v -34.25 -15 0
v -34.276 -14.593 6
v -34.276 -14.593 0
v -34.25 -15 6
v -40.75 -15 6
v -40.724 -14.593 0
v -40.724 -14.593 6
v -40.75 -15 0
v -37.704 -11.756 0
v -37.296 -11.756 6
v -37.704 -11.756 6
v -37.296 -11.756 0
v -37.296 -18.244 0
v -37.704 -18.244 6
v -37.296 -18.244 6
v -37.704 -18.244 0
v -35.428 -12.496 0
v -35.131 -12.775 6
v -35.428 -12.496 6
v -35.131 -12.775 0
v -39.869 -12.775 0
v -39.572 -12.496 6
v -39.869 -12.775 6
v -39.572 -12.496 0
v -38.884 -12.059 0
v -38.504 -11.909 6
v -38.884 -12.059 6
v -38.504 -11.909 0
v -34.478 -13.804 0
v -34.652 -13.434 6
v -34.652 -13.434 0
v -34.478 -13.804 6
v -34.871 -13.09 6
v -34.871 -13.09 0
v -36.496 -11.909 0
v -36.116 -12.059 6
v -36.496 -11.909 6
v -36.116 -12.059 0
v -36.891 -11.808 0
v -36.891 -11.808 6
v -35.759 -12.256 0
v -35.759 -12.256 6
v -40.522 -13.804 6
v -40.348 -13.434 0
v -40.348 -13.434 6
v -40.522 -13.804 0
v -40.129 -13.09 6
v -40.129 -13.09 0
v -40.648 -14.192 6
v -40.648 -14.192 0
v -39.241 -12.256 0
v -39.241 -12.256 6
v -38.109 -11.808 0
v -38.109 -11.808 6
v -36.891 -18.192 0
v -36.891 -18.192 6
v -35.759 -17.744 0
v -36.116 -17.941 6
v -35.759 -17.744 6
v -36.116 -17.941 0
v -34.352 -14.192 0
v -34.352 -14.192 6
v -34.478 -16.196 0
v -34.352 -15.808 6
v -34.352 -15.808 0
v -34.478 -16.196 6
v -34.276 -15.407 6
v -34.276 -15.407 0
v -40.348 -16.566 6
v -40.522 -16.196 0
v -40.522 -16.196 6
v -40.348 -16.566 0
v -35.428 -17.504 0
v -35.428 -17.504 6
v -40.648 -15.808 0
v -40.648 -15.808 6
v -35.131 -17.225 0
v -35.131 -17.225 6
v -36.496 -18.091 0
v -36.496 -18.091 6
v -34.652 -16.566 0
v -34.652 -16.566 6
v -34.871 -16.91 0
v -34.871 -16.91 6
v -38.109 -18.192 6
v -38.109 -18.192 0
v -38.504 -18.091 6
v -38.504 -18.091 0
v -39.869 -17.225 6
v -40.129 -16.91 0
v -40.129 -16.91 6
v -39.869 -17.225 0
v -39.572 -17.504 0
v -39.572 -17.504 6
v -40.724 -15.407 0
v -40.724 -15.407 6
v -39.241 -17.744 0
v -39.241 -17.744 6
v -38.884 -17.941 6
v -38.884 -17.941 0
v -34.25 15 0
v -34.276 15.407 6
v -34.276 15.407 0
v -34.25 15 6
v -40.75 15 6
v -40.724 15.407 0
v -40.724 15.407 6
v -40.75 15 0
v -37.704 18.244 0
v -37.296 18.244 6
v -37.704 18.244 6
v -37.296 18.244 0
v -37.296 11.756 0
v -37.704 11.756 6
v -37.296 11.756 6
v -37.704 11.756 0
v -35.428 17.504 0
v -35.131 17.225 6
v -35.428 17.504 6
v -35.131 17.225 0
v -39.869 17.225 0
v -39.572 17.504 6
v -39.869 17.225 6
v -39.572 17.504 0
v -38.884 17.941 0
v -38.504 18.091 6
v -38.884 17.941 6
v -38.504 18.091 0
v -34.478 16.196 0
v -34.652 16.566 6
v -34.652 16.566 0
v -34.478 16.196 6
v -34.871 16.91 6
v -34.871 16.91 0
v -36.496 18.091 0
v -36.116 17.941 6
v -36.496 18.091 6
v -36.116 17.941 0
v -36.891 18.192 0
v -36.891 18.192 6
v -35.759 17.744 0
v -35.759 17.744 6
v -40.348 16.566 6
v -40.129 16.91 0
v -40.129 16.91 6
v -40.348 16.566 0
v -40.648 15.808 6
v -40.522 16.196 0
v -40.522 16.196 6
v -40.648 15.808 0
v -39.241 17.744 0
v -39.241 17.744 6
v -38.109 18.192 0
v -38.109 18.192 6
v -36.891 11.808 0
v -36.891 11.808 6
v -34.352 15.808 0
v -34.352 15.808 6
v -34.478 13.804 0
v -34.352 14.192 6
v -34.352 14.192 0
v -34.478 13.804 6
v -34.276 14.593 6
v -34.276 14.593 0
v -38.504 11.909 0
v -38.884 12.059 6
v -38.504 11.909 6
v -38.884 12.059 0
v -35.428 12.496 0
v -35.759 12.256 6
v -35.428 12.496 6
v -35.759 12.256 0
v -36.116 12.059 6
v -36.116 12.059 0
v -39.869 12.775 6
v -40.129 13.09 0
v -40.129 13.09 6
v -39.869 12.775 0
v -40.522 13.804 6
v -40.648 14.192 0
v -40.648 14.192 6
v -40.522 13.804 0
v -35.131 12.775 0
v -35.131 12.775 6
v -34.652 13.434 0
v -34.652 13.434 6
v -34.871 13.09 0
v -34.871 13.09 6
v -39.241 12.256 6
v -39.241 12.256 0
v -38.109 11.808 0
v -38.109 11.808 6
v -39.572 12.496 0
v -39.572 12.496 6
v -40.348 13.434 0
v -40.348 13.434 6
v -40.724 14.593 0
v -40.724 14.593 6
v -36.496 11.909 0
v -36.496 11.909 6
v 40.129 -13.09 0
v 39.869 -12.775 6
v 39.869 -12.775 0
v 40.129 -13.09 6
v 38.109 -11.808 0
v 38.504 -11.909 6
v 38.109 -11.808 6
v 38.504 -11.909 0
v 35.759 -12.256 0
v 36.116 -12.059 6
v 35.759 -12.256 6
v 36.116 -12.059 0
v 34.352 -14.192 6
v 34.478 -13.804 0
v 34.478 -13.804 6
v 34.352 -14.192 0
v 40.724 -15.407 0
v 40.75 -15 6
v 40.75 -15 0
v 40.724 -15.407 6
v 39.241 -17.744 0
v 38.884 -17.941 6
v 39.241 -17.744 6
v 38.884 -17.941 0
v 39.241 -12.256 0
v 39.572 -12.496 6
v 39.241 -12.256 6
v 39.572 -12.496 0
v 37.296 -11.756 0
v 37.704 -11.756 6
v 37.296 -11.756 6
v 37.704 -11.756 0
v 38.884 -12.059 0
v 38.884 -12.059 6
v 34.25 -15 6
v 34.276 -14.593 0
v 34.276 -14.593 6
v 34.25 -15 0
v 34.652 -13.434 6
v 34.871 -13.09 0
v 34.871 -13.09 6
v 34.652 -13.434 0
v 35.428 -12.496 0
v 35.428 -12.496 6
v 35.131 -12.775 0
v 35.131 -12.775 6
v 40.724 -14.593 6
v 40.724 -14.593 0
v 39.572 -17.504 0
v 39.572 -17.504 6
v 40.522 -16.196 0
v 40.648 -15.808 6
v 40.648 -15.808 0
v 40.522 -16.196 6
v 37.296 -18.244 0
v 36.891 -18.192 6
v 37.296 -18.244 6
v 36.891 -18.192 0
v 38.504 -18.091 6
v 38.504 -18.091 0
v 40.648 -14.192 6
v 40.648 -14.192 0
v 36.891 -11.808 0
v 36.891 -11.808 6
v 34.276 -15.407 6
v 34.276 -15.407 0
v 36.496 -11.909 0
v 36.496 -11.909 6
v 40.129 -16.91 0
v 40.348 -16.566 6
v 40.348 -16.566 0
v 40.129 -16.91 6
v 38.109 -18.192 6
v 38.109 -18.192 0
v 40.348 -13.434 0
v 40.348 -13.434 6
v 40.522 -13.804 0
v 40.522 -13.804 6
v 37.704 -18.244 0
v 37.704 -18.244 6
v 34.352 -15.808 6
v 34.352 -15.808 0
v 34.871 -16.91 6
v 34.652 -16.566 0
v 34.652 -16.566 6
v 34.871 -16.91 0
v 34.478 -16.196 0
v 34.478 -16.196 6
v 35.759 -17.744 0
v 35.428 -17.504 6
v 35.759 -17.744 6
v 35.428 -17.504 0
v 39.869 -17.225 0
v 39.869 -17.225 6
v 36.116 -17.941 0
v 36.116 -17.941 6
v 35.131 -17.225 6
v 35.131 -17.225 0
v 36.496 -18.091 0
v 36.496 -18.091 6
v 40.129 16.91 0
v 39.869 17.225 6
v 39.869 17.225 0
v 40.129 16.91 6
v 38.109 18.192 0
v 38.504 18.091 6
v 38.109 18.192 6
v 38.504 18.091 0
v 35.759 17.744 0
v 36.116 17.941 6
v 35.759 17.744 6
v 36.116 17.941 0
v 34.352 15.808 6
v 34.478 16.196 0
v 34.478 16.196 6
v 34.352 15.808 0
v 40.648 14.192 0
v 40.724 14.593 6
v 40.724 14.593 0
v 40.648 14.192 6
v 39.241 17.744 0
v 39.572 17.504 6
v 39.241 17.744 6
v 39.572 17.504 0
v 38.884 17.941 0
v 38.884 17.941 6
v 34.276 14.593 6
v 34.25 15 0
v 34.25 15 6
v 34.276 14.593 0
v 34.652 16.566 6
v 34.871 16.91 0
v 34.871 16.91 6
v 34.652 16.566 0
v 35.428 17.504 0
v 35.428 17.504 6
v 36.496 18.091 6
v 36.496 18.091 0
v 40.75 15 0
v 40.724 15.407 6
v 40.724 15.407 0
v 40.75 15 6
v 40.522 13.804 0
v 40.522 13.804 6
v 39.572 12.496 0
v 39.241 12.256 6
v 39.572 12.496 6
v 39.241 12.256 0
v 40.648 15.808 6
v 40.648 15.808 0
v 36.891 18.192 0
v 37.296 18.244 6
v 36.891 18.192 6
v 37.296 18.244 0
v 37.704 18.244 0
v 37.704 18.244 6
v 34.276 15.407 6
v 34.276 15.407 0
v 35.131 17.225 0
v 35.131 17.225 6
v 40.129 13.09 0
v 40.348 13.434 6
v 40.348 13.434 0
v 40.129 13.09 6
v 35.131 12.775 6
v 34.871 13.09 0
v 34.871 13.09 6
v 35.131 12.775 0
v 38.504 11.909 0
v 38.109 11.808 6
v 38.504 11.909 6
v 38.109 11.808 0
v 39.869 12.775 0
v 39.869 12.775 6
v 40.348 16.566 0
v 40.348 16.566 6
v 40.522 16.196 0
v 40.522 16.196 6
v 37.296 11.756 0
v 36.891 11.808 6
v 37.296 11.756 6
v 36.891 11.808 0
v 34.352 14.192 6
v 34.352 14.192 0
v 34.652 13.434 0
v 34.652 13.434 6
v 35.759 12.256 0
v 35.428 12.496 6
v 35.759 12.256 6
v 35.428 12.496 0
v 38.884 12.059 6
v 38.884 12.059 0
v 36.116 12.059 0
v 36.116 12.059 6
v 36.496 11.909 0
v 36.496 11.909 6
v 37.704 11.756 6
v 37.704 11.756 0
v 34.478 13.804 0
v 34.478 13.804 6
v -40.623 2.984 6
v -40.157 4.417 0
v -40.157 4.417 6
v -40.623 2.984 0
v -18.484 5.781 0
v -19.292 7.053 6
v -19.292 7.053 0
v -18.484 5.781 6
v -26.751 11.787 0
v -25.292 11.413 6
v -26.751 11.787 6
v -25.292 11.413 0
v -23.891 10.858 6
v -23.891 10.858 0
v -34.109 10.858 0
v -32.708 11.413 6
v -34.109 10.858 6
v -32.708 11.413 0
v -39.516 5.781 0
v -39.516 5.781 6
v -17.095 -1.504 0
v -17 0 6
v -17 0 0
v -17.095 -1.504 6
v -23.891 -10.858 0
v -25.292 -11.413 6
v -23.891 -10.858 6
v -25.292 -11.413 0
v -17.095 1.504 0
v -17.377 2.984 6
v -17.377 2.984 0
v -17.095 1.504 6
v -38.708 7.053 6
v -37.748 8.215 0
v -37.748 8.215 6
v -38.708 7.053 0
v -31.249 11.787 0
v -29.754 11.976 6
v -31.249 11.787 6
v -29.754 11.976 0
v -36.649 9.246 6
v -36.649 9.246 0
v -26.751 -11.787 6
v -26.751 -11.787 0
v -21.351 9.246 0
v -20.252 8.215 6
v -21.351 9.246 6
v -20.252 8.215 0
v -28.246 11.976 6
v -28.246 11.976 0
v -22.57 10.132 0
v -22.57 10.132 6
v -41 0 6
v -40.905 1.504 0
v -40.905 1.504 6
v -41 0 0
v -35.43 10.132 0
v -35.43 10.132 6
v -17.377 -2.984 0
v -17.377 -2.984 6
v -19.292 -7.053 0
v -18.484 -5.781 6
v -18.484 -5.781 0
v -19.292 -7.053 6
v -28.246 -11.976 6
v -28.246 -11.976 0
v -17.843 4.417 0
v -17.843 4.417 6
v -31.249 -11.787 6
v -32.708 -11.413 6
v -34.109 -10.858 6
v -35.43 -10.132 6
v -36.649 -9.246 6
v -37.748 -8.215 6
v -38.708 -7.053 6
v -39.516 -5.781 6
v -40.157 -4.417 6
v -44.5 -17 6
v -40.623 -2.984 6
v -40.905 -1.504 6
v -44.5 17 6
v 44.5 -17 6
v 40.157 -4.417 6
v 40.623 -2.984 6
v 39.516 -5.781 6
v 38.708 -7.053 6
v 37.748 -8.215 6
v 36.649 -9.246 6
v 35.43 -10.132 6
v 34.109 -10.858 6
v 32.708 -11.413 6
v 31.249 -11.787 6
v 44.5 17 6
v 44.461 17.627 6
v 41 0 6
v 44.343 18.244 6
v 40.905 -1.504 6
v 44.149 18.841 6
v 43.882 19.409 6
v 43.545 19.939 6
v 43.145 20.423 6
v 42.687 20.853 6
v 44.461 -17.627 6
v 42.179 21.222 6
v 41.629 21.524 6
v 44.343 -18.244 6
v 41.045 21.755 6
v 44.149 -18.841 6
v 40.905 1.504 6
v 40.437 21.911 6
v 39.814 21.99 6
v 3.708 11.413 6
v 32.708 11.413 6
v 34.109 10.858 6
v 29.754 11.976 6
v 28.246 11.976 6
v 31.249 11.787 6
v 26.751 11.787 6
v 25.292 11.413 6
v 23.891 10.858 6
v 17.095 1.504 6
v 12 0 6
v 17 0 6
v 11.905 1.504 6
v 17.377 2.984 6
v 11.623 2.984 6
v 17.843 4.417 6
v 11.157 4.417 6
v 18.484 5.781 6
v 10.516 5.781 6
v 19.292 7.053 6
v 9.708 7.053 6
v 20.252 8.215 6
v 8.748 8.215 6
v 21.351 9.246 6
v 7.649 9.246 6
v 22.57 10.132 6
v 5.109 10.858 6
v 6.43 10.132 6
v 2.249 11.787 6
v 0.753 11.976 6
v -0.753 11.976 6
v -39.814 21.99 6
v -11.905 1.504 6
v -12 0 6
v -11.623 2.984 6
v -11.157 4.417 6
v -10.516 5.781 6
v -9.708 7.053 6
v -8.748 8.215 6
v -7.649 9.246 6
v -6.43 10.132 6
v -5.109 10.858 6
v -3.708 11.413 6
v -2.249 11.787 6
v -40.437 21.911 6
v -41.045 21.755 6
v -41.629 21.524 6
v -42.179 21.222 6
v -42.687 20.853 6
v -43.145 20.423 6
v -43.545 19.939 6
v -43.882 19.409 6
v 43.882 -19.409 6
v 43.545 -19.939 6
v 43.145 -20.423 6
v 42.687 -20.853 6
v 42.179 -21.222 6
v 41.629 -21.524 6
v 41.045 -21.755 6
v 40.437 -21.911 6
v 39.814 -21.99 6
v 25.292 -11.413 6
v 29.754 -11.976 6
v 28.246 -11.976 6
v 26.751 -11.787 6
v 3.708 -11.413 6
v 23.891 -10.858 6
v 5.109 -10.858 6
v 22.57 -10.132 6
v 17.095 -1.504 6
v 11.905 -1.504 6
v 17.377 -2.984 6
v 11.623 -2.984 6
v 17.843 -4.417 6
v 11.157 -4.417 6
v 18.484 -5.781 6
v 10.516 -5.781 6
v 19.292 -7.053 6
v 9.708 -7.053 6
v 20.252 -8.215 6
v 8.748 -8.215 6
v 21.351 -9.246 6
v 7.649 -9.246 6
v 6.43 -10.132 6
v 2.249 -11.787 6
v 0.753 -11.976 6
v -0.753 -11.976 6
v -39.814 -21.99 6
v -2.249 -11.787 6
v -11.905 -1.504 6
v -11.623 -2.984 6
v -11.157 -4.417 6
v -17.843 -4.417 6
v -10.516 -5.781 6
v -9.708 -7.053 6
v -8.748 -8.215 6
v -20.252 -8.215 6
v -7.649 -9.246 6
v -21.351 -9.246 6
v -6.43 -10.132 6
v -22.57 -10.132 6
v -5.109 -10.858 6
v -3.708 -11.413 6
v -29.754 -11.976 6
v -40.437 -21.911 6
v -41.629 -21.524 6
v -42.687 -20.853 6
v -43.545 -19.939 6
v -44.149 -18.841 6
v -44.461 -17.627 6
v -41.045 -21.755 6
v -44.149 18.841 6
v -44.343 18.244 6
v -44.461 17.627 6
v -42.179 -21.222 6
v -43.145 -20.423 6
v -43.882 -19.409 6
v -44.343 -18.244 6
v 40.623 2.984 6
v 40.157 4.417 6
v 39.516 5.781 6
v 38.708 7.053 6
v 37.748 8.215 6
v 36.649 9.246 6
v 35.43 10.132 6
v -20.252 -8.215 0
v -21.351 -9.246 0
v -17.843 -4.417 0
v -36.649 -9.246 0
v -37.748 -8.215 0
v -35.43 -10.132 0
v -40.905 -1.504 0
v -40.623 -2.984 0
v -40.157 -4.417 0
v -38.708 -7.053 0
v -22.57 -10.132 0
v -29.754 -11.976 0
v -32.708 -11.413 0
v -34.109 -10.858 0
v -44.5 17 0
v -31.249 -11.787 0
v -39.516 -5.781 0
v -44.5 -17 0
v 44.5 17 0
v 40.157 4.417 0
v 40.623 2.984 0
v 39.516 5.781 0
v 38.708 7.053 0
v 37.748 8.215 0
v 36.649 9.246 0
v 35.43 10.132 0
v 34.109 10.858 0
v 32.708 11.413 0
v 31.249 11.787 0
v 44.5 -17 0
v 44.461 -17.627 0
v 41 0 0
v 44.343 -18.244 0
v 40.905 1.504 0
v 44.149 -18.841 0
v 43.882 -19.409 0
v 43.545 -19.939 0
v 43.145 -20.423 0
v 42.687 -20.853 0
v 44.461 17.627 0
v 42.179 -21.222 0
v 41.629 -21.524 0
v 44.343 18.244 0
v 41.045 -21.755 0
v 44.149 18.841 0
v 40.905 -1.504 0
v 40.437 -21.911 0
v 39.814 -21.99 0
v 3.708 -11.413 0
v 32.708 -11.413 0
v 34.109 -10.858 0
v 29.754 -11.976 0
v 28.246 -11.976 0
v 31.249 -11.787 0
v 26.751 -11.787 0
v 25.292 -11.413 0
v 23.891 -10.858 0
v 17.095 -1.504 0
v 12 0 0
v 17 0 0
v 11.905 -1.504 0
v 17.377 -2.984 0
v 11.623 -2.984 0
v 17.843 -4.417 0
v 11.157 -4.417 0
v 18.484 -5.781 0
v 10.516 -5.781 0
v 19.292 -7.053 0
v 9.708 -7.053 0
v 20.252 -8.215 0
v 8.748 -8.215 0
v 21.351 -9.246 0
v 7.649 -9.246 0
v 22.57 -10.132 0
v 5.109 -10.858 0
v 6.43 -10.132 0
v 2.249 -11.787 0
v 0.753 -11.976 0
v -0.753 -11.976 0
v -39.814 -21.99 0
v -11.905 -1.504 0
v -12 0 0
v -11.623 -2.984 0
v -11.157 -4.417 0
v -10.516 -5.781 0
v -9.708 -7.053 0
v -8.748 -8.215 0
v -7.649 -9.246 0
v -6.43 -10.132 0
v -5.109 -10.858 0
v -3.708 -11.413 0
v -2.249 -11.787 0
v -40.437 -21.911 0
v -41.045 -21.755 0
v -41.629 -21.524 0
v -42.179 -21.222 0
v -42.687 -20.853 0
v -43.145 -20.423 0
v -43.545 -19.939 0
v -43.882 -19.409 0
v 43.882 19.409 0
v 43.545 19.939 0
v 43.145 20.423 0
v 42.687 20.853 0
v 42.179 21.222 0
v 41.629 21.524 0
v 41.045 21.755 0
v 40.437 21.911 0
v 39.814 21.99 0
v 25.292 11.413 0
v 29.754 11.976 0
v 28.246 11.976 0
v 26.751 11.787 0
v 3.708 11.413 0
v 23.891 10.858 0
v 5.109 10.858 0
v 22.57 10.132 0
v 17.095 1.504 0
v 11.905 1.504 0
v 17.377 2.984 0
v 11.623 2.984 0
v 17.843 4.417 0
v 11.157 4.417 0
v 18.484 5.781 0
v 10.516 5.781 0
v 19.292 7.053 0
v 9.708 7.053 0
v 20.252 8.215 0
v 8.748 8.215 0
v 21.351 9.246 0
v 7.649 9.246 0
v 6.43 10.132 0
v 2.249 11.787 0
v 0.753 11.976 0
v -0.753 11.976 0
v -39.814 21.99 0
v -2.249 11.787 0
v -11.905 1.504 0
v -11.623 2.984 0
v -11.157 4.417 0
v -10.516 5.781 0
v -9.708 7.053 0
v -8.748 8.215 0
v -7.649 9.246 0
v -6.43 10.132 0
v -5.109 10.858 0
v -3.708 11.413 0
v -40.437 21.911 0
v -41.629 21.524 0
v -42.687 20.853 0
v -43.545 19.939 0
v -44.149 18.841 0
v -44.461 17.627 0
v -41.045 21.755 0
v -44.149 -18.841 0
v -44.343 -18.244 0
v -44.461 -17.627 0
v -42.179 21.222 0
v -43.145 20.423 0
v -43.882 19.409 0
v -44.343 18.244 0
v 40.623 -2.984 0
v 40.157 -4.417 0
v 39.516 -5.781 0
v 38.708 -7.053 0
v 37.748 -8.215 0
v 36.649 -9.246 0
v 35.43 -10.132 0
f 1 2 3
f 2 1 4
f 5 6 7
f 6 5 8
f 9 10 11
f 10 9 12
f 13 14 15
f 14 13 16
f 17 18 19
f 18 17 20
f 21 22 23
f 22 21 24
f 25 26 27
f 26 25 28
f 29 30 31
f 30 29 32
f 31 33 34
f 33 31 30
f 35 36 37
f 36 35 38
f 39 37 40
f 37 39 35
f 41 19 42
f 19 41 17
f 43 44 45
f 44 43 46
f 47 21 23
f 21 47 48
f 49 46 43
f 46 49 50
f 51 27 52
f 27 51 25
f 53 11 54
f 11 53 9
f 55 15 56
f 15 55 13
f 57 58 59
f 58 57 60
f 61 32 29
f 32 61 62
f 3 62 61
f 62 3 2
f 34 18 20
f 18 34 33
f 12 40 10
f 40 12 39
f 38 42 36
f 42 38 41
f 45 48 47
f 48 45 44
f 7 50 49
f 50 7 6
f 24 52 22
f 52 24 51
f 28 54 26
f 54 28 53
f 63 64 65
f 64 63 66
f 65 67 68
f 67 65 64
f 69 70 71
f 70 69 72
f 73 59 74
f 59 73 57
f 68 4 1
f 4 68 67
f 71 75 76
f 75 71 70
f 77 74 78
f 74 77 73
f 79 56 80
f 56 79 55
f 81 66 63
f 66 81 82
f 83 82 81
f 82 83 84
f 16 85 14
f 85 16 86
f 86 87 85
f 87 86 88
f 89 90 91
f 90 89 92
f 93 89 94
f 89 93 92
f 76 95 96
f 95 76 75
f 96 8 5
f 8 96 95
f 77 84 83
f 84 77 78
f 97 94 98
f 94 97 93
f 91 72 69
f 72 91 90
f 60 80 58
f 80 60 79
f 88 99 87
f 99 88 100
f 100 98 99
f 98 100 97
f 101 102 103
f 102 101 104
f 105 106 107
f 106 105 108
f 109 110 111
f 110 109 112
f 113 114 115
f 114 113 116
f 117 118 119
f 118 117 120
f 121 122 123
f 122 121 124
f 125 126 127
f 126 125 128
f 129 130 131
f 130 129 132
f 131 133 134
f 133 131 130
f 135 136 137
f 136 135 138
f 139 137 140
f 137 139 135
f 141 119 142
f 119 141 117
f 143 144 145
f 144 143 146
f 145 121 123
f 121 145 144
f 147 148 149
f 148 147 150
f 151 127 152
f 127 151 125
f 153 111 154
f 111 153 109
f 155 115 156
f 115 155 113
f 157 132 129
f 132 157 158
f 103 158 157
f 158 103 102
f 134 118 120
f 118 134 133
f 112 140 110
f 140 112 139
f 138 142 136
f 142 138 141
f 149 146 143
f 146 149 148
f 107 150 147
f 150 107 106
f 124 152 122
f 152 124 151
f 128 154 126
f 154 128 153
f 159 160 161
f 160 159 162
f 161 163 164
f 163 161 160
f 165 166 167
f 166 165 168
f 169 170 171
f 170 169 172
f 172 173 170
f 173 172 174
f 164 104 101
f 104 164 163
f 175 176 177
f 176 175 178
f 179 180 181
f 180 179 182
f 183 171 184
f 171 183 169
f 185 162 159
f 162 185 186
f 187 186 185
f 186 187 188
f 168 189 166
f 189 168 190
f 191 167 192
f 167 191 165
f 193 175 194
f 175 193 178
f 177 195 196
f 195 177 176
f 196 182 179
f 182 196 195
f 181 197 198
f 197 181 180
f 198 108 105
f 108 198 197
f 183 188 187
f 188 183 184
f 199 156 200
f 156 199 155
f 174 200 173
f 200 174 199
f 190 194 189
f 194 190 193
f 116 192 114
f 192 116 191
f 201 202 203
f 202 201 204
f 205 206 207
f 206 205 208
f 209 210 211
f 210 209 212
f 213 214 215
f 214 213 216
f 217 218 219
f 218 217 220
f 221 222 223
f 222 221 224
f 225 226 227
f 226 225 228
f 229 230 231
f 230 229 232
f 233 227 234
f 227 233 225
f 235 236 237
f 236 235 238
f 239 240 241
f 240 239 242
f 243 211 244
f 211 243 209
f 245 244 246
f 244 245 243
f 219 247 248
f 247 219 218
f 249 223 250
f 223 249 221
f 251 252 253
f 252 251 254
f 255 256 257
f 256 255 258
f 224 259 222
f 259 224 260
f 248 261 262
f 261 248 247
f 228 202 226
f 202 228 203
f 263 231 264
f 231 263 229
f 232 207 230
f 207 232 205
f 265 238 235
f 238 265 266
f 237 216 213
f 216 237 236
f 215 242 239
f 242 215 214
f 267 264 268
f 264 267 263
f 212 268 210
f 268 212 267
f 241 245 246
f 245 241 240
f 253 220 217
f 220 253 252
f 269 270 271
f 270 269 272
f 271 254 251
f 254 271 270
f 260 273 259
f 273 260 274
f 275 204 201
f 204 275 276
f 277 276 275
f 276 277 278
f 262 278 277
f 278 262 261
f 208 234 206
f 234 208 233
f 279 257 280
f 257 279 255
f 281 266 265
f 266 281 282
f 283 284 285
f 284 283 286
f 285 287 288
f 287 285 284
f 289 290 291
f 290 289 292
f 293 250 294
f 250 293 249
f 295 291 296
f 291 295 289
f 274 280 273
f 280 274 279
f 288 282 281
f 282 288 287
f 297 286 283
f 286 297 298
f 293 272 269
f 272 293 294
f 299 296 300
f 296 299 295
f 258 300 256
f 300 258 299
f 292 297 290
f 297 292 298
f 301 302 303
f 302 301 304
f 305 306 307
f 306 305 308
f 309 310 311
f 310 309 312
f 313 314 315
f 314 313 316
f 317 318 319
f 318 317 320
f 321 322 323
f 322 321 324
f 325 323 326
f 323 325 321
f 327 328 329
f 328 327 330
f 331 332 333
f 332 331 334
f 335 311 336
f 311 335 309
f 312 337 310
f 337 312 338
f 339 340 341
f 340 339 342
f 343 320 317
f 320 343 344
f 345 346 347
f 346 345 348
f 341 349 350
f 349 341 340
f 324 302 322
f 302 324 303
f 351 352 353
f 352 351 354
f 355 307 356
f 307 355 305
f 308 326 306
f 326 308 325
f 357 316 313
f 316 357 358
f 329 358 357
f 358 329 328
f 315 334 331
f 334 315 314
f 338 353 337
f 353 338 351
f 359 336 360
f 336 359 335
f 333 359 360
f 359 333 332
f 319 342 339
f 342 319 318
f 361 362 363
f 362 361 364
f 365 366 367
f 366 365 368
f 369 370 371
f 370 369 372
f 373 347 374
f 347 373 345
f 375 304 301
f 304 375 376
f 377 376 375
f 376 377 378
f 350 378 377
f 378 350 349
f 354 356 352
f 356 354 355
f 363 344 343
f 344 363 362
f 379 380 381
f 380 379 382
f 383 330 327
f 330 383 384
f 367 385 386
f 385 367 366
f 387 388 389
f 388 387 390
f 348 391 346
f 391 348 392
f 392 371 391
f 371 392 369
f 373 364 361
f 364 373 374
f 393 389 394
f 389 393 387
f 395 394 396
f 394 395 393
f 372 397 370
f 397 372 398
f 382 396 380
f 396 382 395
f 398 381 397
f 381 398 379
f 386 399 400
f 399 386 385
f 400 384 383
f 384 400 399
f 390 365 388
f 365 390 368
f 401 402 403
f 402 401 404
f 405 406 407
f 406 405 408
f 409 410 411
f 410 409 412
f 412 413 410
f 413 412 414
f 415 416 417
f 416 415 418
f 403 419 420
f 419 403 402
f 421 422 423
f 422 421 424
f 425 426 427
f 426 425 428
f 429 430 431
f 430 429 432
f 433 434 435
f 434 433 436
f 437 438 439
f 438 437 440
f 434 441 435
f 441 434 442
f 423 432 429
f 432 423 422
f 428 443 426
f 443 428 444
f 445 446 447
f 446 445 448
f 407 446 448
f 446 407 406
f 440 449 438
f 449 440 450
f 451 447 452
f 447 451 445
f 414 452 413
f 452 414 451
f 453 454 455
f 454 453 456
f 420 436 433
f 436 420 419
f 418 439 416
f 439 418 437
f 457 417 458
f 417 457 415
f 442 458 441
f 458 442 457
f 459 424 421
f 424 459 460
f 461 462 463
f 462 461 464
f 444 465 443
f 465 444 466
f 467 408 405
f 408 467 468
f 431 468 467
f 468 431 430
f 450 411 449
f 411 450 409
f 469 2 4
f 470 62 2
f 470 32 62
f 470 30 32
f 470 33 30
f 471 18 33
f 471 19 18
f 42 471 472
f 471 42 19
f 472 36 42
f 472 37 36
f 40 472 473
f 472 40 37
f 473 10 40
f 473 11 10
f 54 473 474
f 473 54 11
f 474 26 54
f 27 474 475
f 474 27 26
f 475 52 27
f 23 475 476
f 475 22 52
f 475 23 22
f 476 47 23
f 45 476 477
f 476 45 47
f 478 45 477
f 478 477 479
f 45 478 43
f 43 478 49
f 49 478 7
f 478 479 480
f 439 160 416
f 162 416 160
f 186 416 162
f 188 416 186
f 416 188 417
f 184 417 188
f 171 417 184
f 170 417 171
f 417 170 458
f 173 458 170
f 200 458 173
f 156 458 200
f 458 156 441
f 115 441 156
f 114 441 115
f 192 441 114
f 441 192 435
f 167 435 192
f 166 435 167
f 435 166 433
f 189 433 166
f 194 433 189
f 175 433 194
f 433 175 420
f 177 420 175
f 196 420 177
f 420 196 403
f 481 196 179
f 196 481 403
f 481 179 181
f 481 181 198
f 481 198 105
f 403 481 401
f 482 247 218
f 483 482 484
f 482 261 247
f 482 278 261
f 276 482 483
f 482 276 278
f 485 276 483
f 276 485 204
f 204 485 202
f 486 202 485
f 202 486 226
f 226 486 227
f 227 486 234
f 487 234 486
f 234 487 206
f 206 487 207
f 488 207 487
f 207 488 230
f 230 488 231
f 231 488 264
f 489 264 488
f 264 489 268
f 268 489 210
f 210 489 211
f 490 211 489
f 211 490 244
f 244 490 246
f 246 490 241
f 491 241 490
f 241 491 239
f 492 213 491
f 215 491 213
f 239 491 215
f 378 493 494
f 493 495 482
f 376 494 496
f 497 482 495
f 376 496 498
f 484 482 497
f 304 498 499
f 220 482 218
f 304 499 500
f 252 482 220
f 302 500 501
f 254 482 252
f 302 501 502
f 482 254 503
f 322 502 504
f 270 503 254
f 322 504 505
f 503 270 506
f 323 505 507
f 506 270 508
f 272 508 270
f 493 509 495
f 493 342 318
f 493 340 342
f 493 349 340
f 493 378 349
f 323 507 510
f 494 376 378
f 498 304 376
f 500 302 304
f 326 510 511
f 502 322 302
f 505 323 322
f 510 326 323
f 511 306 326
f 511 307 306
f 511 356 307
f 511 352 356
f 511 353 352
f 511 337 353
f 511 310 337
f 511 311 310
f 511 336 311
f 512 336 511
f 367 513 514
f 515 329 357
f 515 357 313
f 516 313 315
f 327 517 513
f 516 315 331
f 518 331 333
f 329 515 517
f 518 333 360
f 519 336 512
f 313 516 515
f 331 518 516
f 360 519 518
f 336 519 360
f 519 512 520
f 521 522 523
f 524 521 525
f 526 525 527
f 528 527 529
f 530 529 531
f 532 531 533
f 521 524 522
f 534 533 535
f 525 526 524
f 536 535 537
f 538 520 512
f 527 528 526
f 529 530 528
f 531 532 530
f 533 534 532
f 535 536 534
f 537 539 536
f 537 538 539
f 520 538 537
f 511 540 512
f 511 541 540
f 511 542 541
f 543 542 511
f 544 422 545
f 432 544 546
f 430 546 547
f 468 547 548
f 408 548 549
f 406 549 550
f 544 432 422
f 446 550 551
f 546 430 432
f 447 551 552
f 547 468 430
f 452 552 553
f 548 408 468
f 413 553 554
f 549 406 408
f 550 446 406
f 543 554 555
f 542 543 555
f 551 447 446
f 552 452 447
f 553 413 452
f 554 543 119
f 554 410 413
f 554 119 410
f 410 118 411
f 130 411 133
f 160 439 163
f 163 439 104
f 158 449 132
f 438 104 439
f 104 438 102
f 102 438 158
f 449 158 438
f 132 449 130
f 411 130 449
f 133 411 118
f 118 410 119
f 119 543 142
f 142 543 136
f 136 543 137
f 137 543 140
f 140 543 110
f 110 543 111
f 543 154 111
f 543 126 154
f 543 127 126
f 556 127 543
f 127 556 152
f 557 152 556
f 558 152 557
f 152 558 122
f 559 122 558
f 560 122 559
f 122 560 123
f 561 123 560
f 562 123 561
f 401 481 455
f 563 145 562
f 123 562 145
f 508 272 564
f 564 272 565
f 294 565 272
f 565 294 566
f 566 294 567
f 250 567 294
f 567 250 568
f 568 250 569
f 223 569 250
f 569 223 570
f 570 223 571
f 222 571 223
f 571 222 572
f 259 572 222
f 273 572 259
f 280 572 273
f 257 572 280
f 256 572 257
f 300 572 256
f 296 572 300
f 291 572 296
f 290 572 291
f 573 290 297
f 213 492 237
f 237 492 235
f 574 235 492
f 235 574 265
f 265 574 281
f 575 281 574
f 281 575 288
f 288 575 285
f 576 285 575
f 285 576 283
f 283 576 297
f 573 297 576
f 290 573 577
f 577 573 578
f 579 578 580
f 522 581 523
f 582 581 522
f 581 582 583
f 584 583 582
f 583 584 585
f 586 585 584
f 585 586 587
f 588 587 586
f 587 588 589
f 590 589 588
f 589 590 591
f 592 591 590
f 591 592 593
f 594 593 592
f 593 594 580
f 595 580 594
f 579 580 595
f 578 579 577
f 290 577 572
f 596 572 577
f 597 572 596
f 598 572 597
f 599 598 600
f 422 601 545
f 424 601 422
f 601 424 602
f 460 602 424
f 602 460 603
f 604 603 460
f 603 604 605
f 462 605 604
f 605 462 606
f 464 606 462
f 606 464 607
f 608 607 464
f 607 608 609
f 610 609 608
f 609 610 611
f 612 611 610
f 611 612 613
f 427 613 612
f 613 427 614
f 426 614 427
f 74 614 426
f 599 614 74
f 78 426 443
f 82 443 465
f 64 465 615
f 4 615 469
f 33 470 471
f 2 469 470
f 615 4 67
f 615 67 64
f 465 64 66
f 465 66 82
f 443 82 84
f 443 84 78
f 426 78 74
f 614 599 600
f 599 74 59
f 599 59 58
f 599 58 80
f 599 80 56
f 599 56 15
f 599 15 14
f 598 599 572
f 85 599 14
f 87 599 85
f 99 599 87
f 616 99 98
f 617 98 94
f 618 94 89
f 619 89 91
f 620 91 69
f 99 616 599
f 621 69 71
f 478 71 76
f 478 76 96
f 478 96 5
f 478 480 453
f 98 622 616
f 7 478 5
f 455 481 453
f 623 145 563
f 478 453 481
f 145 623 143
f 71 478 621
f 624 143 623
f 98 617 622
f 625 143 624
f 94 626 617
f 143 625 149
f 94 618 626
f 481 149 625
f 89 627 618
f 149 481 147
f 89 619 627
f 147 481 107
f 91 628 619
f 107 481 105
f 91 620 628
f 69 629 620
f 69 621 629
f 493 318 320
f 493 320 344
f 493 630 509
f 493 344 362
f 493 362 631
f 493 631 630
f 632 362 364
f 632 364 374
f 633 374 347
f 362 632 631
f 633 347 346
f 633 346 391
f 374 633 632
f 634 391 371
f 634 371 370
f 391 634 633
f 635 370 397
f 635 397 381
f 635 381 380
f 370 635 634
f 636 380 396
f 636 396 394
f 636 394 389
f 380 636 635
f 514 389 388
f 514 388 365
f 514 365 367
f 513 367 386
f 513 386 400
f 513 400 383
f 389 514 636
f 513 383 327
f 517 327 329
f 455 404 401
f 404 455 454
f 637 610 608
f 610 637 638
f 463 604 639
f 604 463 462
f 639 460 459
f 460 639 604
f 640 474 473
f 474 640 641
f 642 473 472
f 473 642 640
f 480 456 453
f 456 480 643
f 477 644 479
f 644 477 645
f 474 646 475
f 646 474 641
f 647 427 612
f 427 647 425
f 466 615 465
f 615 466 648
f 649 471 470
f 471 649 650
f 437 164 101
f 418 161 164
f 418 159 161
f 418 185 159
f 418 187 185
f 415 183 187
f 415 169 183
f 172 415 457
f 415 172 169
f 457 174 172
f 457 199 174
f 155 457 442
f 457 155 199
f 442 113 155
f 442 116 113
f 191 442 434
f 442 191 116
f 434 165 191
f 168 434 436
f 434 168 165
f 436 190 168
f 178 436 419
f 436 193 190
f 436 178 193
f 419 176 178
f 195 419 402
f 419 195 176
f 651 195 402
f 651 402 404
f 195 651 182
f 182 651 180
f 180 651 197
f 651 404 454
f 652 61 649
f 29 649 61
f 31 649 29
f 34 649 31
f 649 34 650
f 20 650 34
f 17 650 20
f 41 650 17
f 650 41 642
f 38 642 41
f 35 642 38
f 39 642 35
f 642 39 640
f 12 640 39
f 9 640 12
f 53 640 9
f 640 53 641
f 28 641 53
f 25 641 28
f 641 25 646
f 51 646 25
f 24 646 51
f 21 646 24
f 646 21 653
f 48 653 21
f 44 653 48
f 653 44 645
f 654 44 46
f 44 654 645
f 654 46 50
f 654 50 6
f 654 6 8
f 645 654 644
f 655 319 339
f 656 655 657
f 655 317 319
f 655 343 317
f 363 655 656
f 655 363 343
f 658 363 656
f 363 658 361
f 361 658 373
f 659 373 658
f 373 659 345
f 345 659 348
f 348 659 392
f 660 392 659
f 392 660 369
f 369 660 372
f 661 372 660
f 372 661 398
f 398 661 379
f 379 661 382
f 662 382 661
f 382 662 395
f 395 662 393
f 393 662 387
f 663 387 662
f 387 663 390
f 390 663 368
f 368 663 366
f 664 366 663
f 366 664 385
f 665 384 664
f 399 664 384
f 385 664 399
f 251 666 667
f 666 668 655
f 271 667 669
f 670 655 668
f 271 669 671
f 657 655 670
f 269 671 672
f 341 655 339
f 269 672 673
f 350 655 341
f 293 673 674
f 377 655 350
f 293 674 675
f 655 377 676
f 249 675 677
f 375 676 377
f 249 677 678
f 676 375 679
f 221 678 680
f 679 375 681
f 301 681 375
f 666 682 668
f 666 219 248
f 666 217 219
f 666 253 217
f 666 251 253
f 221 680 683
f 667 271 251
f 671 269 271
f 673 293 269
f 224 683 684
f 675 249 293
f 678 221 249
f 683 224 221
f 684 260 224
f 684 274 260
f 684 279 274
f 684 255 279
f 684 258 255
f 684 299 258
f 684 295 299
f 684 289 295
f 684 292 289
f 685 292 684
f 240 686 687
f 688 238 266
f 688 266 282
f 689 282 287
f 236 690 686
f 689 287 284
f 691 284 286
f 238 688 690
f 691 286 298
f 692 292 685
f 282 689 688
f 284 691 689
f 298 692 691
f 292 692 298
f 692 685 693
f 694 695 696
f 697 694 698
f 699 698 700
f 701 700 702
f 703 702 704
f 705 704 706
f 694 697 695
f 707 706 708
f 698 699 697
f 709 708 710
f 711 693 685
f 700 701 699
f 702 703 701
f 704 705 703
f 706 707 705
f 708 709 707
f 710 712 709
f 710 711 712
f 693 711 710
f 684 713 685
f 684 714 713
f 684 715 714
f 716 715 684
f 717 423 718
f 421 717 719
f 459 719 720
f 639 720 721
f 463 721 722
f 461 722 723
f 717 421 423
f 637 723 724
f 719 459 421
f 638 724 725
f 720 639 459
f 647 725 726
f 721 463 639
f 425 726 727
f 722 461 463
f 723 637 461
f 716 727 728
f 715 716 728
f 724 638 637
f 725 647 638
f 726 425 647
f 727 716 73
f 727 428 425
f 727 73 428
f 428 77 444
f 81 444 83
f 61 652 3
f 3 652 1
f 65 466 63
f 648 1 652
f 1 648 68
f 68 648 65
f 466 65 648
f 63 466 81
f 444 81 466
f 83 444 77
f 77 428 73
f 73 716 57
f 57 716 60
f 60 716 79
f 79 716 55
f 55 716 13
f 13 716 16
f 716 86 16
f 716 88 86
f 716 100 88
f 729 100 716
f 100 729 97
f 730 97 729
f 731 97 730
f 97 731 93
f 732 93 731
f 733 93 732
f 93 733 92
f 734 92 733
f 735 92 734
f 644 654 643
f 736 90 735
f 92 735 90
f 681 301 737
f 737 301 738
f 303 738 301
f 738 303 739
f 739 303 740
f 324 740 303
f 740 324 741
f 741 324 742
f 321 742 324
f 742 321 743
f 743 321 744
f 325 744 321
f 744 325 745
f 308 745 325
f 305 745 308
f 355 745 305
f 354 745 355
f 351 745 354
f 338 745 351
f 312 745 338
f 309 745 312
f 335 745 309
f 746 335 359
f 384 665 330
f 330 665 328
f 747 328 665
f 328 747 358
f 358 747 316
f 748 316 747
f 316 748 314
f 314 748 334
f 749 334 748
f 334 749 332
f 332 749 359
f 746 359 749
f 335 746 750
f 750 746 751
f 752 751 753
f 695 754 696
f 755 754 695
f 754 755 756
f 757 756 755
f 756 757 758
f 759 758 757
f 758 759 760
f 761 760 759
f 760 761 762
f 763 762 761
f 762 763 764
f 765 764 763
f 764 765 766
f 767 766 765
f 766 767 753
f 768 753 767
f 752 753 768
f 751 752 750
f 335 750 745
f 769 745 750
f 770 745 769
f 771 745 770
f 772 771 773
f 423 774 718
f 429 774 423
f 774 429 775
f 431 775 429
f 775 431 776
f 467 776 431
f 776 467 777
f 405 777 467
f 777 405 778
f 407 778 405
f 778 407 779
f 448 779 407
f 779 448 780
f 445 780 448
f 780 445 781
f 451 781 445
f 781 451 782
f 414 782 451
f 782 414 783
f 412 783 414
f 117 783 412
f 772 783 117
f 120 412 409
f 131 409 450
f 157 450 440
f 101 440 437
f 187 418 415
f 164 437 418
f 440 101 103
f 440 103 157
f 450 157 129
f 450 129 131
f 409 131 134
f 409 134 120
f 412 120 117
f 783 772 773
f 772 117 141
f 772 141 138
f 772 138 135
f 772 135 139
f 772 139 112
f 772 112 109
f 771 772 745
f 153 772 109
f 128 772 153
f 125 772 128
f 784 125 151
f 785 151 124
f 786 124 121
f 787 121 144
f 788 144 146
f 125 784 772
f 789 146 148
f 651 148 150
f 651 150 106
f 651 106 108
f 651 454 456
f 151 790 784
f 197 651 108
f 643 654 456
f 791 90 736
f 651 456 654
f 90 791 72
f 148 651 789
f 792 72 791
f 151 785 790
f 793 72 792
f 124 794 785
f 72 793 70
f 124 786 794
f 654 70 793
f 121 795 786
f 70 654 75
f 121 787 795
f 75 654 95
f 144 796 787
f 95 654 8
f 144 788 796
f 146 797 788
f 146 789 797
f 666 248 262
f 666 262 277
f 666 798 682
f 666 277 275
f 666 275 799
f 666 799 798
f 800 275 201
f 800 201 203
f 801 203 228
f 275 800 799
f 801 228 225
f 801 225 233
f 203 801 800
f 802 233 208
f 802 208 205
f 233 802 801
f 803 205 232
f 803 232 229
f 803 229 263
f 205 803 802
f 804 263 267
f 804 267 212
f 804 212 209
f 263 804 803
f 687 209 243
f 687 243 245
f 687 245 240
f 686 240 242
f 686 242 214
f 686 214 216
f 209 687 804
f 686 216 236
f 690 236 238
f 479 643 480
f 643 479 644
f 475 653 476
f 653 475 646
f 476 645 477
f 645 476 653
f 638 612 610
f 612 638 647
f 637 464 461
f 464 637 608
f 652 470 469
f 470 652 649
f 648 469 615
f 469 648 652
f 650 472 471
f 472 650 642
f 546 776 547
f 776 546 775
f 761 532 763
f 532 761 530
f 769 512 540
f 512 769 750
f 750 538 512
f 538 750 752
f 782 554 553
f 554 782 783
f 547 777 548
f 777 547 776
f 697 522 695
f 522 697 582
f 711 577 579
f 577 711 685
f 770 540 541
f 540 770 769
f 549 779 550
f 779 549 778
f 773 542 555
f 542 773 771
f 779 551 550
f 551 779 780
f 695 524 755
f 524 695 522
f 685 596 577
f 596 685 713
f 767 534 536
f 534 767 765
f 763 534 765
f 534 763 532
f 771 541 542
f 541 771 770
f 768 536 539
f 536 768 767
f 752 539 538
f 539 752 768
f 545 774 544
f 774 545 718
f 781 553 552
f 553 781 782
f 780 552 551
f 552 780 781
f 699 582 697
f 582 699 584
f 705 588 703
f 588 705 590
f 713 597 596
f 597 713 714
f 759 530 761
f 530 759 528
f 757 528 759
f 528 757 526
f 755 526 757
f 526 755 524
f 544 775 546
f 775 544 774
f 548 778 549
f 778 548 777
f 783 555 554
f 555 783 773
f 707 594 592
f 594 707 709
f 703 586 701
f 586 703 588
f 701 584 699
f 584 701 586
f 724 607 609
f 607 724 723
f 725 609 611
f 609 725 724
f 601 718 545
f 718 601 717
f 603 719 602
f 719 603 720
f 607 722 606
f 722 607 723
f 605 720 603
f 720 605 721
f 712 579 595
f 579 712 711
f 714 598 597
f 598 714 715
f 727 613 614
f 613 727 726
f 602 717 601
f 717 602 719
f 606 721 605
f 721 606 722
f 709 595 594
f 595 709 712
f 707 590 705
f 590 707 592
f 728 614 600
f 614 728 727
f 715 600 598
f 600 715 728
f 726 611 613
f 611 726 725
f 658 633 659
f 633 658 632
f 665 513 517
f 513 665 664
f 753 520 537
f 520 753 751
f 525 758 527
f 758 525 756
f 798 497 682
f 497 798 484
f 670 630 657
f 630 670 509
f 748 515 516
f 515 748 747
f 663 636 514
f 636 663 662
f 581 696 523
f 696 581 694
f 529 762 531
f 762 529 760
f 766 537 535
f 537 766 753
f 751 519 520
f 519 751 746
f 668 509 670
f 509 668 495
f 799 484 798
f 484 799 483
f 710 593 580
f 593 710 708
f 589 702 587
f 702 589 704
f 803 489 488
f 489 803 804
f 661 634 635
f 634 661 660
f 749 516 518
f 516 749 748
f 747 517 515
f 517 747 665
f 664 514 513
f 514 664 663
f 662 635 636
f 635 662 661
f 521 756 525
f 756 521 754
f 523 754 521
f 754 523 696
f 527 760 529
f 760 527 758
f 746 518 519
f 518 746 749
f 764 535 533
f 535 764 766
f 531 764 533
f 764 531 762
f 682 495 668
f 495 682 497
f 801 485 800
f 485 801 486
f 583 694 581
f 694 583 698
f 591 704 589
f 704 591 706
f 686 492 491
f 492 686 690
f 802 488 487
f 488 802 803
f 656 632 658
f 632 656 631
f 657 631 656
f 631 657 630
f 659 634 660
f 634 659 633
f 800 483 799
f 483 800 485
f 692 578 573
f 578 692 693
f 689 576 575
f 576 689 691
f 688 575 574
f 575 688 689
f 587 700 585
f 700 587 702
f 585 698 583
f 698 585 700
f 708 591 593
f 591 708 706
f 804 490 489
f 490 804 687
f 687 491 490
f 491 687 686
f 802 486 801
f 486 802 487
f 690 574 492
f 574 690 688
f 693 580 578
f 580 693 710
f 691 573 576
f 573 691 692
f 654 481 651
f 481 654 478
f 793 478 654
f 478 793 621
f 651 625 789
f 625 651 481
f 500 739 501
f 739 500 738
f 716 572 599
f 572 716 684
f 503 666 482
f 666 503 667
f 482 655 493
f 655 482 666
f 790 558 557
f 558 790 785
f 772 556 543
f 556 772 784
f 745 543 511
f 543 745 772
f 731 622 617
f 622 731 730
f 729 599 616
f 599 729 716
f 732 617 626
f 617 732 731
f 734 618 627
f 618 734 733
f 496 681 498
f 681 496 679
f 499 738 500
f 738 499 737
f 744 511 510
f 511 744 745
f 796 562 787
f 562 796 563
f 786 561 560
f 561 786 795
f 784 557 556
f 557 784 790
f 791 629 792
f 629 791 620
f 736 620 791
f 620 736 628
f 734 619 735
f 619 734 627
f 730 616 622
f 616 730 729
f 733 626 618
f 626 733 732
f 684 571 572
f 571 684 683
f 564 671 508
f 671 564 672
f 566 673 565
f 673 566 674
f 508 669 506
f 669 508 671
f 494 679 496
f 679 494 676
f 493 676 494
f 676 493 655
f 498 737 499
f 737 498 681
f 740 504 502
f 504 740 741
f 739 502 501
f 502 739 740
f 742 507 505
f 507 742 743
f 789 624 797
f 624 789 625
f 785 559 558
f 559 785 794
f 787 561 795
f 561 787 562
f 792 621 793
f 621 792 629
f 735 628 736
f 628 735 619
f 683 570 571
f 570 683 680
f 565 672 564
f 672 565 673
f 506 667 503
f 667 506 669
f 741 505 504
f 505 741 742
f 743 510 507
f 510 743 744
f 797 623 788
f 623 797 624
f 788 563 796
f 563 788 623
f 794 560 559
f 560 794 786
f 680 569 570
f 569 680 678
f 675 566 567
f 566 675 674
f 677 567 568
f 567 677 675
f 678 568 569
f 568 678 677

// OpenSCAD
$fn = 50;


difference() {
	union() {
		hull() {
			translate(v = [-39.5000000000, 17.0000000000, 0]) {
				cylinder(h = 6, r = 5);
			}
			translate(v = [39.5000000000, 17.0000000000, 0]) {
				cylinder(h = 6, r = 5);
			}
			translate(v = [-39.5000000000, -17.0000000000, 0]) {
				cylinder(h = 6, r = 5);
			}
			translate(v = [39.5000000000, -17.0000000000, 0]) {
				cylinder(h = 6, r = 5);
			}
		}
	}
	union() {
		#translate(v = [-37.5000000000, -15.0000000000, -100.0000000000]) {
			cylinder(h = 200, r = 3.2500000000);
		}
		#translate(v = [-37.5000000000, 15.0000000000, -100.0000000000]) {
			cylinder(h = 200, r = 3.2500000000);
		}
		#translate(v = [37.5000000000, -15.0000000000, -100.0000000000]) {
			cylinder(h = 200, r = 3.2500000000);
		}
		#translate(v = [37.5000000000, 15.0000000000, -100.0000000000]) {
			cylinder(h = 200, r = 3.2500000000);
		}
		#translate(v = [-29.0000000000, 0, 0]) {
			cylinder(h = 6, r = 12.0000000000);
		}
		#cylinder(h = 6, r = 12.0000000000);
		#translate(v = [29.0000000000, 0, 0]) {
			cylinder(h = 6, r = 12.0000000000);
		}
	}
}
